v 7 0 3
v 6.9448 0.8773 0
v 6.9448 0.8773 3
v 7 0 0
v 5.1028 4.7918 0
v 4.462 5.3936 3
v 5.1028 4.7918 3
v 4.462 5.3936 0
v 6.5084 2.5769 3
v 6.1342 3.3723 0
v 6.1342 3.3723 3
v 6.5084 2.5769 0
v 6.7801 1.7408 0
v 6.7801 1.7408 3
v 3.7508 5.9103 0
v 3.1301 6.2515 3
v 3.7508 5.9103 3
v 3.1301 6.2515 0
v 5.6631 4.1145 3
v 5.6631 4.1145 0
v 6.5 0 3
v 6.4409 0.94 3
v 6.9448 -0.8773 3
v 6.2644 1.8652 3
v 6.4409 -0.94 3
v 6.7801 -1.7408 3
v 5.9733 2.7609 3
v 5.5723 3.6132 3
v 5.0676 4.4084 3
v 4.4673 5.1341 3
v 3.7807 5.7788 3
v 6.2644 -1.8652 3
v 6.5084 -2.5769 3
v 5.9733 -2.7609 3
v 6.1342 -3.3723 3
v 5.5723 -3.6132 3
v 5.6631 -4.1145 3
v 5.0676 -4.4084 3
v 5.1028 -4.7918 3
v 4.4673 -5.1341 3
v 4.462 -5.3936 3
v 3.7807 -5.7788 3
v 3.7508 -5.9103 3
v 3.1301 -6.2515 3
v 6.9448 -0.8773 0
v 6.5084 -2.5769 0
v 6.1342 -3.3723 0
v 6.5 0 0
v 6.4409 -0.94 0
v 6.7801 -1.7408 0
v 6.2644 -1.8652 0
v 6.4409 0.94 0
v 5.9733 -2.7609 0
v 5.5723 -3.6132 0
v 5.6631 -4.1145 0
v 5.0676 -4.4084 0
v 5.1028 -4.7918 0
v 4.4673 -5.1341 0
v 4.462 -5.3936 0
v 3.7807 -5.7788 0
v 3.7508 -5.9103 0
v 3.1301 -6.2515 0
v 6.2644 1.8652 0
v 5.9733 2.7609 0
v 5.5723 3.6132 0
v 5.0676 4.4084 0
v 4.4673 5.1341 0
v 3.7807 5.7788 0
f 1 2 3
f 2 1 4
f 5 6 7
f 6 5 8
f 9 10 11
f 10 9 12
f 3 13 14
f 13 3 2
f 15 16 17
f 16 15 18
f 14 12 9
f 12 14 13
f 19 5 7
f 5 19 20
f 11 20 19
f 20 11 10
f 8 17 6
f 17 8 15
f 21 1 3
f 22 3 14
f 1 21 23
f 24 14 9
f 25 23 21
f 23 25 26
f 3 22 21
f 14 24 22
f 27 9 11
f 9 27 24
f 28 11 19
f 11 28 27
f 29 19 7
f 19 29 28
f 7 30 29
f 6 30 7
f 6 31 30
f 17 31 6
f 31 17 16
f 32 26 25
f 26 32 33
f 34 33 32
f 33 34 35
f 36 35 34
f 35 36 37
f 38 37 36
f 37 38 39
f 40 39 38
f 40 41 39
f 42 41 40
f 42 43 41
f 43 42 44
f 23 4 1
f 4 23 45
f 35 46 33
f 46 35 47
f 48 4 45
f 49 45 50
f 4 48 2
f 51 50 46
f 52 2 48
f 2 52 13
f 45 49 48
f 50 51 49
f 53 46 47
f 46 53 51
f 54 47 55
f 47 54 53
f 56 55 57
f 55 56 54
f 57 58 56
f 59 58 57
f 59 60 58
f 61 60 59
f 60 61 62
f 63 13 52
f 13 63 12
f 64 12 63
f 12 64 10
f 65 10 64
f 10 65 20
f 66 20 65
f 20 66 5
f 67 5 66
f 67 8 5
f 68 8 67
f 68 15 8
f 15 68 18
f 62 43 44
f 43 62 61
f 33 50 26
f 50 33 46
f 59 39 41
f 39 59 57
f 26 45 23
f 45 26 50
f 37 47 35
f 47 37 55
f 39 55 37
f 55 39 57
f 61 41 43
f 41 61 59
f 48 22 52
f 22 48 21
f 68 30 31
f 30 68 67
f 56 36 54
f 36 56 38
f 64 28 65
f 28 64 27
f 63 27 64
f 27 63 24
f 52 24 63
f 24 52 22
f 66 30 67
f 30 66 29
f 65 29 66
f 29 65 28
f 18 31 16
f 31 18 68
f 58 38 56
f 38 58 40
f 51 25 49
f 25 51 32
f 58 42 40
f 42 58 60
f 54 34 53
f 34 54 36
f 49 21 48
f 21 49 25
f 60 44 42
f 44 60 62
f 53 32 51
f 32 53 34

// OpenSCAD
$fn = 50;


difference() {
	union() {
		cylinder(h = 3, r = 7.0000000000);
		translate(v = [-4.0000000000, 0, 0]) {
			cylinder(h = 3, r = 7.0000000000);
		}
	}
	union() {
		cylinder(h = 3, r = 3.2500000000);
		cylinder(h = 3, r = 1.8000000000);
		cylinder(h = 3, r = 1.8000000000);
		cylinder(h = 3, r = 1.8000000000);
		translate(v = [-8.5000000000, 0, 0]) {
			hull() {
				translate(v = [-3.7500000000, 0.0000000000, 0]) {
					cylinder(h = 3, r = 7.5000000000);
				}
				translate(v = [3.7500000000, 0.0000000000, 0]) {
					cylinder(h = 3, r = 7.5000000000);
				}
				translate(v = [-3.7500000000, -0.0000000000, 0]) {
					cylinder(h = 3, r = 7.5000000000);
				}
				translate(v = [3.7500000000, -0.0000000000, 0]) {
					cylinder(h = 3, r = 7.5000000000);
				}
			}
		}
		translate(v = [-1.0000000000, 0, 0.0000000000]) {
			cylinder(h = 3, r = 7.5000000000);
		}
	}
}
